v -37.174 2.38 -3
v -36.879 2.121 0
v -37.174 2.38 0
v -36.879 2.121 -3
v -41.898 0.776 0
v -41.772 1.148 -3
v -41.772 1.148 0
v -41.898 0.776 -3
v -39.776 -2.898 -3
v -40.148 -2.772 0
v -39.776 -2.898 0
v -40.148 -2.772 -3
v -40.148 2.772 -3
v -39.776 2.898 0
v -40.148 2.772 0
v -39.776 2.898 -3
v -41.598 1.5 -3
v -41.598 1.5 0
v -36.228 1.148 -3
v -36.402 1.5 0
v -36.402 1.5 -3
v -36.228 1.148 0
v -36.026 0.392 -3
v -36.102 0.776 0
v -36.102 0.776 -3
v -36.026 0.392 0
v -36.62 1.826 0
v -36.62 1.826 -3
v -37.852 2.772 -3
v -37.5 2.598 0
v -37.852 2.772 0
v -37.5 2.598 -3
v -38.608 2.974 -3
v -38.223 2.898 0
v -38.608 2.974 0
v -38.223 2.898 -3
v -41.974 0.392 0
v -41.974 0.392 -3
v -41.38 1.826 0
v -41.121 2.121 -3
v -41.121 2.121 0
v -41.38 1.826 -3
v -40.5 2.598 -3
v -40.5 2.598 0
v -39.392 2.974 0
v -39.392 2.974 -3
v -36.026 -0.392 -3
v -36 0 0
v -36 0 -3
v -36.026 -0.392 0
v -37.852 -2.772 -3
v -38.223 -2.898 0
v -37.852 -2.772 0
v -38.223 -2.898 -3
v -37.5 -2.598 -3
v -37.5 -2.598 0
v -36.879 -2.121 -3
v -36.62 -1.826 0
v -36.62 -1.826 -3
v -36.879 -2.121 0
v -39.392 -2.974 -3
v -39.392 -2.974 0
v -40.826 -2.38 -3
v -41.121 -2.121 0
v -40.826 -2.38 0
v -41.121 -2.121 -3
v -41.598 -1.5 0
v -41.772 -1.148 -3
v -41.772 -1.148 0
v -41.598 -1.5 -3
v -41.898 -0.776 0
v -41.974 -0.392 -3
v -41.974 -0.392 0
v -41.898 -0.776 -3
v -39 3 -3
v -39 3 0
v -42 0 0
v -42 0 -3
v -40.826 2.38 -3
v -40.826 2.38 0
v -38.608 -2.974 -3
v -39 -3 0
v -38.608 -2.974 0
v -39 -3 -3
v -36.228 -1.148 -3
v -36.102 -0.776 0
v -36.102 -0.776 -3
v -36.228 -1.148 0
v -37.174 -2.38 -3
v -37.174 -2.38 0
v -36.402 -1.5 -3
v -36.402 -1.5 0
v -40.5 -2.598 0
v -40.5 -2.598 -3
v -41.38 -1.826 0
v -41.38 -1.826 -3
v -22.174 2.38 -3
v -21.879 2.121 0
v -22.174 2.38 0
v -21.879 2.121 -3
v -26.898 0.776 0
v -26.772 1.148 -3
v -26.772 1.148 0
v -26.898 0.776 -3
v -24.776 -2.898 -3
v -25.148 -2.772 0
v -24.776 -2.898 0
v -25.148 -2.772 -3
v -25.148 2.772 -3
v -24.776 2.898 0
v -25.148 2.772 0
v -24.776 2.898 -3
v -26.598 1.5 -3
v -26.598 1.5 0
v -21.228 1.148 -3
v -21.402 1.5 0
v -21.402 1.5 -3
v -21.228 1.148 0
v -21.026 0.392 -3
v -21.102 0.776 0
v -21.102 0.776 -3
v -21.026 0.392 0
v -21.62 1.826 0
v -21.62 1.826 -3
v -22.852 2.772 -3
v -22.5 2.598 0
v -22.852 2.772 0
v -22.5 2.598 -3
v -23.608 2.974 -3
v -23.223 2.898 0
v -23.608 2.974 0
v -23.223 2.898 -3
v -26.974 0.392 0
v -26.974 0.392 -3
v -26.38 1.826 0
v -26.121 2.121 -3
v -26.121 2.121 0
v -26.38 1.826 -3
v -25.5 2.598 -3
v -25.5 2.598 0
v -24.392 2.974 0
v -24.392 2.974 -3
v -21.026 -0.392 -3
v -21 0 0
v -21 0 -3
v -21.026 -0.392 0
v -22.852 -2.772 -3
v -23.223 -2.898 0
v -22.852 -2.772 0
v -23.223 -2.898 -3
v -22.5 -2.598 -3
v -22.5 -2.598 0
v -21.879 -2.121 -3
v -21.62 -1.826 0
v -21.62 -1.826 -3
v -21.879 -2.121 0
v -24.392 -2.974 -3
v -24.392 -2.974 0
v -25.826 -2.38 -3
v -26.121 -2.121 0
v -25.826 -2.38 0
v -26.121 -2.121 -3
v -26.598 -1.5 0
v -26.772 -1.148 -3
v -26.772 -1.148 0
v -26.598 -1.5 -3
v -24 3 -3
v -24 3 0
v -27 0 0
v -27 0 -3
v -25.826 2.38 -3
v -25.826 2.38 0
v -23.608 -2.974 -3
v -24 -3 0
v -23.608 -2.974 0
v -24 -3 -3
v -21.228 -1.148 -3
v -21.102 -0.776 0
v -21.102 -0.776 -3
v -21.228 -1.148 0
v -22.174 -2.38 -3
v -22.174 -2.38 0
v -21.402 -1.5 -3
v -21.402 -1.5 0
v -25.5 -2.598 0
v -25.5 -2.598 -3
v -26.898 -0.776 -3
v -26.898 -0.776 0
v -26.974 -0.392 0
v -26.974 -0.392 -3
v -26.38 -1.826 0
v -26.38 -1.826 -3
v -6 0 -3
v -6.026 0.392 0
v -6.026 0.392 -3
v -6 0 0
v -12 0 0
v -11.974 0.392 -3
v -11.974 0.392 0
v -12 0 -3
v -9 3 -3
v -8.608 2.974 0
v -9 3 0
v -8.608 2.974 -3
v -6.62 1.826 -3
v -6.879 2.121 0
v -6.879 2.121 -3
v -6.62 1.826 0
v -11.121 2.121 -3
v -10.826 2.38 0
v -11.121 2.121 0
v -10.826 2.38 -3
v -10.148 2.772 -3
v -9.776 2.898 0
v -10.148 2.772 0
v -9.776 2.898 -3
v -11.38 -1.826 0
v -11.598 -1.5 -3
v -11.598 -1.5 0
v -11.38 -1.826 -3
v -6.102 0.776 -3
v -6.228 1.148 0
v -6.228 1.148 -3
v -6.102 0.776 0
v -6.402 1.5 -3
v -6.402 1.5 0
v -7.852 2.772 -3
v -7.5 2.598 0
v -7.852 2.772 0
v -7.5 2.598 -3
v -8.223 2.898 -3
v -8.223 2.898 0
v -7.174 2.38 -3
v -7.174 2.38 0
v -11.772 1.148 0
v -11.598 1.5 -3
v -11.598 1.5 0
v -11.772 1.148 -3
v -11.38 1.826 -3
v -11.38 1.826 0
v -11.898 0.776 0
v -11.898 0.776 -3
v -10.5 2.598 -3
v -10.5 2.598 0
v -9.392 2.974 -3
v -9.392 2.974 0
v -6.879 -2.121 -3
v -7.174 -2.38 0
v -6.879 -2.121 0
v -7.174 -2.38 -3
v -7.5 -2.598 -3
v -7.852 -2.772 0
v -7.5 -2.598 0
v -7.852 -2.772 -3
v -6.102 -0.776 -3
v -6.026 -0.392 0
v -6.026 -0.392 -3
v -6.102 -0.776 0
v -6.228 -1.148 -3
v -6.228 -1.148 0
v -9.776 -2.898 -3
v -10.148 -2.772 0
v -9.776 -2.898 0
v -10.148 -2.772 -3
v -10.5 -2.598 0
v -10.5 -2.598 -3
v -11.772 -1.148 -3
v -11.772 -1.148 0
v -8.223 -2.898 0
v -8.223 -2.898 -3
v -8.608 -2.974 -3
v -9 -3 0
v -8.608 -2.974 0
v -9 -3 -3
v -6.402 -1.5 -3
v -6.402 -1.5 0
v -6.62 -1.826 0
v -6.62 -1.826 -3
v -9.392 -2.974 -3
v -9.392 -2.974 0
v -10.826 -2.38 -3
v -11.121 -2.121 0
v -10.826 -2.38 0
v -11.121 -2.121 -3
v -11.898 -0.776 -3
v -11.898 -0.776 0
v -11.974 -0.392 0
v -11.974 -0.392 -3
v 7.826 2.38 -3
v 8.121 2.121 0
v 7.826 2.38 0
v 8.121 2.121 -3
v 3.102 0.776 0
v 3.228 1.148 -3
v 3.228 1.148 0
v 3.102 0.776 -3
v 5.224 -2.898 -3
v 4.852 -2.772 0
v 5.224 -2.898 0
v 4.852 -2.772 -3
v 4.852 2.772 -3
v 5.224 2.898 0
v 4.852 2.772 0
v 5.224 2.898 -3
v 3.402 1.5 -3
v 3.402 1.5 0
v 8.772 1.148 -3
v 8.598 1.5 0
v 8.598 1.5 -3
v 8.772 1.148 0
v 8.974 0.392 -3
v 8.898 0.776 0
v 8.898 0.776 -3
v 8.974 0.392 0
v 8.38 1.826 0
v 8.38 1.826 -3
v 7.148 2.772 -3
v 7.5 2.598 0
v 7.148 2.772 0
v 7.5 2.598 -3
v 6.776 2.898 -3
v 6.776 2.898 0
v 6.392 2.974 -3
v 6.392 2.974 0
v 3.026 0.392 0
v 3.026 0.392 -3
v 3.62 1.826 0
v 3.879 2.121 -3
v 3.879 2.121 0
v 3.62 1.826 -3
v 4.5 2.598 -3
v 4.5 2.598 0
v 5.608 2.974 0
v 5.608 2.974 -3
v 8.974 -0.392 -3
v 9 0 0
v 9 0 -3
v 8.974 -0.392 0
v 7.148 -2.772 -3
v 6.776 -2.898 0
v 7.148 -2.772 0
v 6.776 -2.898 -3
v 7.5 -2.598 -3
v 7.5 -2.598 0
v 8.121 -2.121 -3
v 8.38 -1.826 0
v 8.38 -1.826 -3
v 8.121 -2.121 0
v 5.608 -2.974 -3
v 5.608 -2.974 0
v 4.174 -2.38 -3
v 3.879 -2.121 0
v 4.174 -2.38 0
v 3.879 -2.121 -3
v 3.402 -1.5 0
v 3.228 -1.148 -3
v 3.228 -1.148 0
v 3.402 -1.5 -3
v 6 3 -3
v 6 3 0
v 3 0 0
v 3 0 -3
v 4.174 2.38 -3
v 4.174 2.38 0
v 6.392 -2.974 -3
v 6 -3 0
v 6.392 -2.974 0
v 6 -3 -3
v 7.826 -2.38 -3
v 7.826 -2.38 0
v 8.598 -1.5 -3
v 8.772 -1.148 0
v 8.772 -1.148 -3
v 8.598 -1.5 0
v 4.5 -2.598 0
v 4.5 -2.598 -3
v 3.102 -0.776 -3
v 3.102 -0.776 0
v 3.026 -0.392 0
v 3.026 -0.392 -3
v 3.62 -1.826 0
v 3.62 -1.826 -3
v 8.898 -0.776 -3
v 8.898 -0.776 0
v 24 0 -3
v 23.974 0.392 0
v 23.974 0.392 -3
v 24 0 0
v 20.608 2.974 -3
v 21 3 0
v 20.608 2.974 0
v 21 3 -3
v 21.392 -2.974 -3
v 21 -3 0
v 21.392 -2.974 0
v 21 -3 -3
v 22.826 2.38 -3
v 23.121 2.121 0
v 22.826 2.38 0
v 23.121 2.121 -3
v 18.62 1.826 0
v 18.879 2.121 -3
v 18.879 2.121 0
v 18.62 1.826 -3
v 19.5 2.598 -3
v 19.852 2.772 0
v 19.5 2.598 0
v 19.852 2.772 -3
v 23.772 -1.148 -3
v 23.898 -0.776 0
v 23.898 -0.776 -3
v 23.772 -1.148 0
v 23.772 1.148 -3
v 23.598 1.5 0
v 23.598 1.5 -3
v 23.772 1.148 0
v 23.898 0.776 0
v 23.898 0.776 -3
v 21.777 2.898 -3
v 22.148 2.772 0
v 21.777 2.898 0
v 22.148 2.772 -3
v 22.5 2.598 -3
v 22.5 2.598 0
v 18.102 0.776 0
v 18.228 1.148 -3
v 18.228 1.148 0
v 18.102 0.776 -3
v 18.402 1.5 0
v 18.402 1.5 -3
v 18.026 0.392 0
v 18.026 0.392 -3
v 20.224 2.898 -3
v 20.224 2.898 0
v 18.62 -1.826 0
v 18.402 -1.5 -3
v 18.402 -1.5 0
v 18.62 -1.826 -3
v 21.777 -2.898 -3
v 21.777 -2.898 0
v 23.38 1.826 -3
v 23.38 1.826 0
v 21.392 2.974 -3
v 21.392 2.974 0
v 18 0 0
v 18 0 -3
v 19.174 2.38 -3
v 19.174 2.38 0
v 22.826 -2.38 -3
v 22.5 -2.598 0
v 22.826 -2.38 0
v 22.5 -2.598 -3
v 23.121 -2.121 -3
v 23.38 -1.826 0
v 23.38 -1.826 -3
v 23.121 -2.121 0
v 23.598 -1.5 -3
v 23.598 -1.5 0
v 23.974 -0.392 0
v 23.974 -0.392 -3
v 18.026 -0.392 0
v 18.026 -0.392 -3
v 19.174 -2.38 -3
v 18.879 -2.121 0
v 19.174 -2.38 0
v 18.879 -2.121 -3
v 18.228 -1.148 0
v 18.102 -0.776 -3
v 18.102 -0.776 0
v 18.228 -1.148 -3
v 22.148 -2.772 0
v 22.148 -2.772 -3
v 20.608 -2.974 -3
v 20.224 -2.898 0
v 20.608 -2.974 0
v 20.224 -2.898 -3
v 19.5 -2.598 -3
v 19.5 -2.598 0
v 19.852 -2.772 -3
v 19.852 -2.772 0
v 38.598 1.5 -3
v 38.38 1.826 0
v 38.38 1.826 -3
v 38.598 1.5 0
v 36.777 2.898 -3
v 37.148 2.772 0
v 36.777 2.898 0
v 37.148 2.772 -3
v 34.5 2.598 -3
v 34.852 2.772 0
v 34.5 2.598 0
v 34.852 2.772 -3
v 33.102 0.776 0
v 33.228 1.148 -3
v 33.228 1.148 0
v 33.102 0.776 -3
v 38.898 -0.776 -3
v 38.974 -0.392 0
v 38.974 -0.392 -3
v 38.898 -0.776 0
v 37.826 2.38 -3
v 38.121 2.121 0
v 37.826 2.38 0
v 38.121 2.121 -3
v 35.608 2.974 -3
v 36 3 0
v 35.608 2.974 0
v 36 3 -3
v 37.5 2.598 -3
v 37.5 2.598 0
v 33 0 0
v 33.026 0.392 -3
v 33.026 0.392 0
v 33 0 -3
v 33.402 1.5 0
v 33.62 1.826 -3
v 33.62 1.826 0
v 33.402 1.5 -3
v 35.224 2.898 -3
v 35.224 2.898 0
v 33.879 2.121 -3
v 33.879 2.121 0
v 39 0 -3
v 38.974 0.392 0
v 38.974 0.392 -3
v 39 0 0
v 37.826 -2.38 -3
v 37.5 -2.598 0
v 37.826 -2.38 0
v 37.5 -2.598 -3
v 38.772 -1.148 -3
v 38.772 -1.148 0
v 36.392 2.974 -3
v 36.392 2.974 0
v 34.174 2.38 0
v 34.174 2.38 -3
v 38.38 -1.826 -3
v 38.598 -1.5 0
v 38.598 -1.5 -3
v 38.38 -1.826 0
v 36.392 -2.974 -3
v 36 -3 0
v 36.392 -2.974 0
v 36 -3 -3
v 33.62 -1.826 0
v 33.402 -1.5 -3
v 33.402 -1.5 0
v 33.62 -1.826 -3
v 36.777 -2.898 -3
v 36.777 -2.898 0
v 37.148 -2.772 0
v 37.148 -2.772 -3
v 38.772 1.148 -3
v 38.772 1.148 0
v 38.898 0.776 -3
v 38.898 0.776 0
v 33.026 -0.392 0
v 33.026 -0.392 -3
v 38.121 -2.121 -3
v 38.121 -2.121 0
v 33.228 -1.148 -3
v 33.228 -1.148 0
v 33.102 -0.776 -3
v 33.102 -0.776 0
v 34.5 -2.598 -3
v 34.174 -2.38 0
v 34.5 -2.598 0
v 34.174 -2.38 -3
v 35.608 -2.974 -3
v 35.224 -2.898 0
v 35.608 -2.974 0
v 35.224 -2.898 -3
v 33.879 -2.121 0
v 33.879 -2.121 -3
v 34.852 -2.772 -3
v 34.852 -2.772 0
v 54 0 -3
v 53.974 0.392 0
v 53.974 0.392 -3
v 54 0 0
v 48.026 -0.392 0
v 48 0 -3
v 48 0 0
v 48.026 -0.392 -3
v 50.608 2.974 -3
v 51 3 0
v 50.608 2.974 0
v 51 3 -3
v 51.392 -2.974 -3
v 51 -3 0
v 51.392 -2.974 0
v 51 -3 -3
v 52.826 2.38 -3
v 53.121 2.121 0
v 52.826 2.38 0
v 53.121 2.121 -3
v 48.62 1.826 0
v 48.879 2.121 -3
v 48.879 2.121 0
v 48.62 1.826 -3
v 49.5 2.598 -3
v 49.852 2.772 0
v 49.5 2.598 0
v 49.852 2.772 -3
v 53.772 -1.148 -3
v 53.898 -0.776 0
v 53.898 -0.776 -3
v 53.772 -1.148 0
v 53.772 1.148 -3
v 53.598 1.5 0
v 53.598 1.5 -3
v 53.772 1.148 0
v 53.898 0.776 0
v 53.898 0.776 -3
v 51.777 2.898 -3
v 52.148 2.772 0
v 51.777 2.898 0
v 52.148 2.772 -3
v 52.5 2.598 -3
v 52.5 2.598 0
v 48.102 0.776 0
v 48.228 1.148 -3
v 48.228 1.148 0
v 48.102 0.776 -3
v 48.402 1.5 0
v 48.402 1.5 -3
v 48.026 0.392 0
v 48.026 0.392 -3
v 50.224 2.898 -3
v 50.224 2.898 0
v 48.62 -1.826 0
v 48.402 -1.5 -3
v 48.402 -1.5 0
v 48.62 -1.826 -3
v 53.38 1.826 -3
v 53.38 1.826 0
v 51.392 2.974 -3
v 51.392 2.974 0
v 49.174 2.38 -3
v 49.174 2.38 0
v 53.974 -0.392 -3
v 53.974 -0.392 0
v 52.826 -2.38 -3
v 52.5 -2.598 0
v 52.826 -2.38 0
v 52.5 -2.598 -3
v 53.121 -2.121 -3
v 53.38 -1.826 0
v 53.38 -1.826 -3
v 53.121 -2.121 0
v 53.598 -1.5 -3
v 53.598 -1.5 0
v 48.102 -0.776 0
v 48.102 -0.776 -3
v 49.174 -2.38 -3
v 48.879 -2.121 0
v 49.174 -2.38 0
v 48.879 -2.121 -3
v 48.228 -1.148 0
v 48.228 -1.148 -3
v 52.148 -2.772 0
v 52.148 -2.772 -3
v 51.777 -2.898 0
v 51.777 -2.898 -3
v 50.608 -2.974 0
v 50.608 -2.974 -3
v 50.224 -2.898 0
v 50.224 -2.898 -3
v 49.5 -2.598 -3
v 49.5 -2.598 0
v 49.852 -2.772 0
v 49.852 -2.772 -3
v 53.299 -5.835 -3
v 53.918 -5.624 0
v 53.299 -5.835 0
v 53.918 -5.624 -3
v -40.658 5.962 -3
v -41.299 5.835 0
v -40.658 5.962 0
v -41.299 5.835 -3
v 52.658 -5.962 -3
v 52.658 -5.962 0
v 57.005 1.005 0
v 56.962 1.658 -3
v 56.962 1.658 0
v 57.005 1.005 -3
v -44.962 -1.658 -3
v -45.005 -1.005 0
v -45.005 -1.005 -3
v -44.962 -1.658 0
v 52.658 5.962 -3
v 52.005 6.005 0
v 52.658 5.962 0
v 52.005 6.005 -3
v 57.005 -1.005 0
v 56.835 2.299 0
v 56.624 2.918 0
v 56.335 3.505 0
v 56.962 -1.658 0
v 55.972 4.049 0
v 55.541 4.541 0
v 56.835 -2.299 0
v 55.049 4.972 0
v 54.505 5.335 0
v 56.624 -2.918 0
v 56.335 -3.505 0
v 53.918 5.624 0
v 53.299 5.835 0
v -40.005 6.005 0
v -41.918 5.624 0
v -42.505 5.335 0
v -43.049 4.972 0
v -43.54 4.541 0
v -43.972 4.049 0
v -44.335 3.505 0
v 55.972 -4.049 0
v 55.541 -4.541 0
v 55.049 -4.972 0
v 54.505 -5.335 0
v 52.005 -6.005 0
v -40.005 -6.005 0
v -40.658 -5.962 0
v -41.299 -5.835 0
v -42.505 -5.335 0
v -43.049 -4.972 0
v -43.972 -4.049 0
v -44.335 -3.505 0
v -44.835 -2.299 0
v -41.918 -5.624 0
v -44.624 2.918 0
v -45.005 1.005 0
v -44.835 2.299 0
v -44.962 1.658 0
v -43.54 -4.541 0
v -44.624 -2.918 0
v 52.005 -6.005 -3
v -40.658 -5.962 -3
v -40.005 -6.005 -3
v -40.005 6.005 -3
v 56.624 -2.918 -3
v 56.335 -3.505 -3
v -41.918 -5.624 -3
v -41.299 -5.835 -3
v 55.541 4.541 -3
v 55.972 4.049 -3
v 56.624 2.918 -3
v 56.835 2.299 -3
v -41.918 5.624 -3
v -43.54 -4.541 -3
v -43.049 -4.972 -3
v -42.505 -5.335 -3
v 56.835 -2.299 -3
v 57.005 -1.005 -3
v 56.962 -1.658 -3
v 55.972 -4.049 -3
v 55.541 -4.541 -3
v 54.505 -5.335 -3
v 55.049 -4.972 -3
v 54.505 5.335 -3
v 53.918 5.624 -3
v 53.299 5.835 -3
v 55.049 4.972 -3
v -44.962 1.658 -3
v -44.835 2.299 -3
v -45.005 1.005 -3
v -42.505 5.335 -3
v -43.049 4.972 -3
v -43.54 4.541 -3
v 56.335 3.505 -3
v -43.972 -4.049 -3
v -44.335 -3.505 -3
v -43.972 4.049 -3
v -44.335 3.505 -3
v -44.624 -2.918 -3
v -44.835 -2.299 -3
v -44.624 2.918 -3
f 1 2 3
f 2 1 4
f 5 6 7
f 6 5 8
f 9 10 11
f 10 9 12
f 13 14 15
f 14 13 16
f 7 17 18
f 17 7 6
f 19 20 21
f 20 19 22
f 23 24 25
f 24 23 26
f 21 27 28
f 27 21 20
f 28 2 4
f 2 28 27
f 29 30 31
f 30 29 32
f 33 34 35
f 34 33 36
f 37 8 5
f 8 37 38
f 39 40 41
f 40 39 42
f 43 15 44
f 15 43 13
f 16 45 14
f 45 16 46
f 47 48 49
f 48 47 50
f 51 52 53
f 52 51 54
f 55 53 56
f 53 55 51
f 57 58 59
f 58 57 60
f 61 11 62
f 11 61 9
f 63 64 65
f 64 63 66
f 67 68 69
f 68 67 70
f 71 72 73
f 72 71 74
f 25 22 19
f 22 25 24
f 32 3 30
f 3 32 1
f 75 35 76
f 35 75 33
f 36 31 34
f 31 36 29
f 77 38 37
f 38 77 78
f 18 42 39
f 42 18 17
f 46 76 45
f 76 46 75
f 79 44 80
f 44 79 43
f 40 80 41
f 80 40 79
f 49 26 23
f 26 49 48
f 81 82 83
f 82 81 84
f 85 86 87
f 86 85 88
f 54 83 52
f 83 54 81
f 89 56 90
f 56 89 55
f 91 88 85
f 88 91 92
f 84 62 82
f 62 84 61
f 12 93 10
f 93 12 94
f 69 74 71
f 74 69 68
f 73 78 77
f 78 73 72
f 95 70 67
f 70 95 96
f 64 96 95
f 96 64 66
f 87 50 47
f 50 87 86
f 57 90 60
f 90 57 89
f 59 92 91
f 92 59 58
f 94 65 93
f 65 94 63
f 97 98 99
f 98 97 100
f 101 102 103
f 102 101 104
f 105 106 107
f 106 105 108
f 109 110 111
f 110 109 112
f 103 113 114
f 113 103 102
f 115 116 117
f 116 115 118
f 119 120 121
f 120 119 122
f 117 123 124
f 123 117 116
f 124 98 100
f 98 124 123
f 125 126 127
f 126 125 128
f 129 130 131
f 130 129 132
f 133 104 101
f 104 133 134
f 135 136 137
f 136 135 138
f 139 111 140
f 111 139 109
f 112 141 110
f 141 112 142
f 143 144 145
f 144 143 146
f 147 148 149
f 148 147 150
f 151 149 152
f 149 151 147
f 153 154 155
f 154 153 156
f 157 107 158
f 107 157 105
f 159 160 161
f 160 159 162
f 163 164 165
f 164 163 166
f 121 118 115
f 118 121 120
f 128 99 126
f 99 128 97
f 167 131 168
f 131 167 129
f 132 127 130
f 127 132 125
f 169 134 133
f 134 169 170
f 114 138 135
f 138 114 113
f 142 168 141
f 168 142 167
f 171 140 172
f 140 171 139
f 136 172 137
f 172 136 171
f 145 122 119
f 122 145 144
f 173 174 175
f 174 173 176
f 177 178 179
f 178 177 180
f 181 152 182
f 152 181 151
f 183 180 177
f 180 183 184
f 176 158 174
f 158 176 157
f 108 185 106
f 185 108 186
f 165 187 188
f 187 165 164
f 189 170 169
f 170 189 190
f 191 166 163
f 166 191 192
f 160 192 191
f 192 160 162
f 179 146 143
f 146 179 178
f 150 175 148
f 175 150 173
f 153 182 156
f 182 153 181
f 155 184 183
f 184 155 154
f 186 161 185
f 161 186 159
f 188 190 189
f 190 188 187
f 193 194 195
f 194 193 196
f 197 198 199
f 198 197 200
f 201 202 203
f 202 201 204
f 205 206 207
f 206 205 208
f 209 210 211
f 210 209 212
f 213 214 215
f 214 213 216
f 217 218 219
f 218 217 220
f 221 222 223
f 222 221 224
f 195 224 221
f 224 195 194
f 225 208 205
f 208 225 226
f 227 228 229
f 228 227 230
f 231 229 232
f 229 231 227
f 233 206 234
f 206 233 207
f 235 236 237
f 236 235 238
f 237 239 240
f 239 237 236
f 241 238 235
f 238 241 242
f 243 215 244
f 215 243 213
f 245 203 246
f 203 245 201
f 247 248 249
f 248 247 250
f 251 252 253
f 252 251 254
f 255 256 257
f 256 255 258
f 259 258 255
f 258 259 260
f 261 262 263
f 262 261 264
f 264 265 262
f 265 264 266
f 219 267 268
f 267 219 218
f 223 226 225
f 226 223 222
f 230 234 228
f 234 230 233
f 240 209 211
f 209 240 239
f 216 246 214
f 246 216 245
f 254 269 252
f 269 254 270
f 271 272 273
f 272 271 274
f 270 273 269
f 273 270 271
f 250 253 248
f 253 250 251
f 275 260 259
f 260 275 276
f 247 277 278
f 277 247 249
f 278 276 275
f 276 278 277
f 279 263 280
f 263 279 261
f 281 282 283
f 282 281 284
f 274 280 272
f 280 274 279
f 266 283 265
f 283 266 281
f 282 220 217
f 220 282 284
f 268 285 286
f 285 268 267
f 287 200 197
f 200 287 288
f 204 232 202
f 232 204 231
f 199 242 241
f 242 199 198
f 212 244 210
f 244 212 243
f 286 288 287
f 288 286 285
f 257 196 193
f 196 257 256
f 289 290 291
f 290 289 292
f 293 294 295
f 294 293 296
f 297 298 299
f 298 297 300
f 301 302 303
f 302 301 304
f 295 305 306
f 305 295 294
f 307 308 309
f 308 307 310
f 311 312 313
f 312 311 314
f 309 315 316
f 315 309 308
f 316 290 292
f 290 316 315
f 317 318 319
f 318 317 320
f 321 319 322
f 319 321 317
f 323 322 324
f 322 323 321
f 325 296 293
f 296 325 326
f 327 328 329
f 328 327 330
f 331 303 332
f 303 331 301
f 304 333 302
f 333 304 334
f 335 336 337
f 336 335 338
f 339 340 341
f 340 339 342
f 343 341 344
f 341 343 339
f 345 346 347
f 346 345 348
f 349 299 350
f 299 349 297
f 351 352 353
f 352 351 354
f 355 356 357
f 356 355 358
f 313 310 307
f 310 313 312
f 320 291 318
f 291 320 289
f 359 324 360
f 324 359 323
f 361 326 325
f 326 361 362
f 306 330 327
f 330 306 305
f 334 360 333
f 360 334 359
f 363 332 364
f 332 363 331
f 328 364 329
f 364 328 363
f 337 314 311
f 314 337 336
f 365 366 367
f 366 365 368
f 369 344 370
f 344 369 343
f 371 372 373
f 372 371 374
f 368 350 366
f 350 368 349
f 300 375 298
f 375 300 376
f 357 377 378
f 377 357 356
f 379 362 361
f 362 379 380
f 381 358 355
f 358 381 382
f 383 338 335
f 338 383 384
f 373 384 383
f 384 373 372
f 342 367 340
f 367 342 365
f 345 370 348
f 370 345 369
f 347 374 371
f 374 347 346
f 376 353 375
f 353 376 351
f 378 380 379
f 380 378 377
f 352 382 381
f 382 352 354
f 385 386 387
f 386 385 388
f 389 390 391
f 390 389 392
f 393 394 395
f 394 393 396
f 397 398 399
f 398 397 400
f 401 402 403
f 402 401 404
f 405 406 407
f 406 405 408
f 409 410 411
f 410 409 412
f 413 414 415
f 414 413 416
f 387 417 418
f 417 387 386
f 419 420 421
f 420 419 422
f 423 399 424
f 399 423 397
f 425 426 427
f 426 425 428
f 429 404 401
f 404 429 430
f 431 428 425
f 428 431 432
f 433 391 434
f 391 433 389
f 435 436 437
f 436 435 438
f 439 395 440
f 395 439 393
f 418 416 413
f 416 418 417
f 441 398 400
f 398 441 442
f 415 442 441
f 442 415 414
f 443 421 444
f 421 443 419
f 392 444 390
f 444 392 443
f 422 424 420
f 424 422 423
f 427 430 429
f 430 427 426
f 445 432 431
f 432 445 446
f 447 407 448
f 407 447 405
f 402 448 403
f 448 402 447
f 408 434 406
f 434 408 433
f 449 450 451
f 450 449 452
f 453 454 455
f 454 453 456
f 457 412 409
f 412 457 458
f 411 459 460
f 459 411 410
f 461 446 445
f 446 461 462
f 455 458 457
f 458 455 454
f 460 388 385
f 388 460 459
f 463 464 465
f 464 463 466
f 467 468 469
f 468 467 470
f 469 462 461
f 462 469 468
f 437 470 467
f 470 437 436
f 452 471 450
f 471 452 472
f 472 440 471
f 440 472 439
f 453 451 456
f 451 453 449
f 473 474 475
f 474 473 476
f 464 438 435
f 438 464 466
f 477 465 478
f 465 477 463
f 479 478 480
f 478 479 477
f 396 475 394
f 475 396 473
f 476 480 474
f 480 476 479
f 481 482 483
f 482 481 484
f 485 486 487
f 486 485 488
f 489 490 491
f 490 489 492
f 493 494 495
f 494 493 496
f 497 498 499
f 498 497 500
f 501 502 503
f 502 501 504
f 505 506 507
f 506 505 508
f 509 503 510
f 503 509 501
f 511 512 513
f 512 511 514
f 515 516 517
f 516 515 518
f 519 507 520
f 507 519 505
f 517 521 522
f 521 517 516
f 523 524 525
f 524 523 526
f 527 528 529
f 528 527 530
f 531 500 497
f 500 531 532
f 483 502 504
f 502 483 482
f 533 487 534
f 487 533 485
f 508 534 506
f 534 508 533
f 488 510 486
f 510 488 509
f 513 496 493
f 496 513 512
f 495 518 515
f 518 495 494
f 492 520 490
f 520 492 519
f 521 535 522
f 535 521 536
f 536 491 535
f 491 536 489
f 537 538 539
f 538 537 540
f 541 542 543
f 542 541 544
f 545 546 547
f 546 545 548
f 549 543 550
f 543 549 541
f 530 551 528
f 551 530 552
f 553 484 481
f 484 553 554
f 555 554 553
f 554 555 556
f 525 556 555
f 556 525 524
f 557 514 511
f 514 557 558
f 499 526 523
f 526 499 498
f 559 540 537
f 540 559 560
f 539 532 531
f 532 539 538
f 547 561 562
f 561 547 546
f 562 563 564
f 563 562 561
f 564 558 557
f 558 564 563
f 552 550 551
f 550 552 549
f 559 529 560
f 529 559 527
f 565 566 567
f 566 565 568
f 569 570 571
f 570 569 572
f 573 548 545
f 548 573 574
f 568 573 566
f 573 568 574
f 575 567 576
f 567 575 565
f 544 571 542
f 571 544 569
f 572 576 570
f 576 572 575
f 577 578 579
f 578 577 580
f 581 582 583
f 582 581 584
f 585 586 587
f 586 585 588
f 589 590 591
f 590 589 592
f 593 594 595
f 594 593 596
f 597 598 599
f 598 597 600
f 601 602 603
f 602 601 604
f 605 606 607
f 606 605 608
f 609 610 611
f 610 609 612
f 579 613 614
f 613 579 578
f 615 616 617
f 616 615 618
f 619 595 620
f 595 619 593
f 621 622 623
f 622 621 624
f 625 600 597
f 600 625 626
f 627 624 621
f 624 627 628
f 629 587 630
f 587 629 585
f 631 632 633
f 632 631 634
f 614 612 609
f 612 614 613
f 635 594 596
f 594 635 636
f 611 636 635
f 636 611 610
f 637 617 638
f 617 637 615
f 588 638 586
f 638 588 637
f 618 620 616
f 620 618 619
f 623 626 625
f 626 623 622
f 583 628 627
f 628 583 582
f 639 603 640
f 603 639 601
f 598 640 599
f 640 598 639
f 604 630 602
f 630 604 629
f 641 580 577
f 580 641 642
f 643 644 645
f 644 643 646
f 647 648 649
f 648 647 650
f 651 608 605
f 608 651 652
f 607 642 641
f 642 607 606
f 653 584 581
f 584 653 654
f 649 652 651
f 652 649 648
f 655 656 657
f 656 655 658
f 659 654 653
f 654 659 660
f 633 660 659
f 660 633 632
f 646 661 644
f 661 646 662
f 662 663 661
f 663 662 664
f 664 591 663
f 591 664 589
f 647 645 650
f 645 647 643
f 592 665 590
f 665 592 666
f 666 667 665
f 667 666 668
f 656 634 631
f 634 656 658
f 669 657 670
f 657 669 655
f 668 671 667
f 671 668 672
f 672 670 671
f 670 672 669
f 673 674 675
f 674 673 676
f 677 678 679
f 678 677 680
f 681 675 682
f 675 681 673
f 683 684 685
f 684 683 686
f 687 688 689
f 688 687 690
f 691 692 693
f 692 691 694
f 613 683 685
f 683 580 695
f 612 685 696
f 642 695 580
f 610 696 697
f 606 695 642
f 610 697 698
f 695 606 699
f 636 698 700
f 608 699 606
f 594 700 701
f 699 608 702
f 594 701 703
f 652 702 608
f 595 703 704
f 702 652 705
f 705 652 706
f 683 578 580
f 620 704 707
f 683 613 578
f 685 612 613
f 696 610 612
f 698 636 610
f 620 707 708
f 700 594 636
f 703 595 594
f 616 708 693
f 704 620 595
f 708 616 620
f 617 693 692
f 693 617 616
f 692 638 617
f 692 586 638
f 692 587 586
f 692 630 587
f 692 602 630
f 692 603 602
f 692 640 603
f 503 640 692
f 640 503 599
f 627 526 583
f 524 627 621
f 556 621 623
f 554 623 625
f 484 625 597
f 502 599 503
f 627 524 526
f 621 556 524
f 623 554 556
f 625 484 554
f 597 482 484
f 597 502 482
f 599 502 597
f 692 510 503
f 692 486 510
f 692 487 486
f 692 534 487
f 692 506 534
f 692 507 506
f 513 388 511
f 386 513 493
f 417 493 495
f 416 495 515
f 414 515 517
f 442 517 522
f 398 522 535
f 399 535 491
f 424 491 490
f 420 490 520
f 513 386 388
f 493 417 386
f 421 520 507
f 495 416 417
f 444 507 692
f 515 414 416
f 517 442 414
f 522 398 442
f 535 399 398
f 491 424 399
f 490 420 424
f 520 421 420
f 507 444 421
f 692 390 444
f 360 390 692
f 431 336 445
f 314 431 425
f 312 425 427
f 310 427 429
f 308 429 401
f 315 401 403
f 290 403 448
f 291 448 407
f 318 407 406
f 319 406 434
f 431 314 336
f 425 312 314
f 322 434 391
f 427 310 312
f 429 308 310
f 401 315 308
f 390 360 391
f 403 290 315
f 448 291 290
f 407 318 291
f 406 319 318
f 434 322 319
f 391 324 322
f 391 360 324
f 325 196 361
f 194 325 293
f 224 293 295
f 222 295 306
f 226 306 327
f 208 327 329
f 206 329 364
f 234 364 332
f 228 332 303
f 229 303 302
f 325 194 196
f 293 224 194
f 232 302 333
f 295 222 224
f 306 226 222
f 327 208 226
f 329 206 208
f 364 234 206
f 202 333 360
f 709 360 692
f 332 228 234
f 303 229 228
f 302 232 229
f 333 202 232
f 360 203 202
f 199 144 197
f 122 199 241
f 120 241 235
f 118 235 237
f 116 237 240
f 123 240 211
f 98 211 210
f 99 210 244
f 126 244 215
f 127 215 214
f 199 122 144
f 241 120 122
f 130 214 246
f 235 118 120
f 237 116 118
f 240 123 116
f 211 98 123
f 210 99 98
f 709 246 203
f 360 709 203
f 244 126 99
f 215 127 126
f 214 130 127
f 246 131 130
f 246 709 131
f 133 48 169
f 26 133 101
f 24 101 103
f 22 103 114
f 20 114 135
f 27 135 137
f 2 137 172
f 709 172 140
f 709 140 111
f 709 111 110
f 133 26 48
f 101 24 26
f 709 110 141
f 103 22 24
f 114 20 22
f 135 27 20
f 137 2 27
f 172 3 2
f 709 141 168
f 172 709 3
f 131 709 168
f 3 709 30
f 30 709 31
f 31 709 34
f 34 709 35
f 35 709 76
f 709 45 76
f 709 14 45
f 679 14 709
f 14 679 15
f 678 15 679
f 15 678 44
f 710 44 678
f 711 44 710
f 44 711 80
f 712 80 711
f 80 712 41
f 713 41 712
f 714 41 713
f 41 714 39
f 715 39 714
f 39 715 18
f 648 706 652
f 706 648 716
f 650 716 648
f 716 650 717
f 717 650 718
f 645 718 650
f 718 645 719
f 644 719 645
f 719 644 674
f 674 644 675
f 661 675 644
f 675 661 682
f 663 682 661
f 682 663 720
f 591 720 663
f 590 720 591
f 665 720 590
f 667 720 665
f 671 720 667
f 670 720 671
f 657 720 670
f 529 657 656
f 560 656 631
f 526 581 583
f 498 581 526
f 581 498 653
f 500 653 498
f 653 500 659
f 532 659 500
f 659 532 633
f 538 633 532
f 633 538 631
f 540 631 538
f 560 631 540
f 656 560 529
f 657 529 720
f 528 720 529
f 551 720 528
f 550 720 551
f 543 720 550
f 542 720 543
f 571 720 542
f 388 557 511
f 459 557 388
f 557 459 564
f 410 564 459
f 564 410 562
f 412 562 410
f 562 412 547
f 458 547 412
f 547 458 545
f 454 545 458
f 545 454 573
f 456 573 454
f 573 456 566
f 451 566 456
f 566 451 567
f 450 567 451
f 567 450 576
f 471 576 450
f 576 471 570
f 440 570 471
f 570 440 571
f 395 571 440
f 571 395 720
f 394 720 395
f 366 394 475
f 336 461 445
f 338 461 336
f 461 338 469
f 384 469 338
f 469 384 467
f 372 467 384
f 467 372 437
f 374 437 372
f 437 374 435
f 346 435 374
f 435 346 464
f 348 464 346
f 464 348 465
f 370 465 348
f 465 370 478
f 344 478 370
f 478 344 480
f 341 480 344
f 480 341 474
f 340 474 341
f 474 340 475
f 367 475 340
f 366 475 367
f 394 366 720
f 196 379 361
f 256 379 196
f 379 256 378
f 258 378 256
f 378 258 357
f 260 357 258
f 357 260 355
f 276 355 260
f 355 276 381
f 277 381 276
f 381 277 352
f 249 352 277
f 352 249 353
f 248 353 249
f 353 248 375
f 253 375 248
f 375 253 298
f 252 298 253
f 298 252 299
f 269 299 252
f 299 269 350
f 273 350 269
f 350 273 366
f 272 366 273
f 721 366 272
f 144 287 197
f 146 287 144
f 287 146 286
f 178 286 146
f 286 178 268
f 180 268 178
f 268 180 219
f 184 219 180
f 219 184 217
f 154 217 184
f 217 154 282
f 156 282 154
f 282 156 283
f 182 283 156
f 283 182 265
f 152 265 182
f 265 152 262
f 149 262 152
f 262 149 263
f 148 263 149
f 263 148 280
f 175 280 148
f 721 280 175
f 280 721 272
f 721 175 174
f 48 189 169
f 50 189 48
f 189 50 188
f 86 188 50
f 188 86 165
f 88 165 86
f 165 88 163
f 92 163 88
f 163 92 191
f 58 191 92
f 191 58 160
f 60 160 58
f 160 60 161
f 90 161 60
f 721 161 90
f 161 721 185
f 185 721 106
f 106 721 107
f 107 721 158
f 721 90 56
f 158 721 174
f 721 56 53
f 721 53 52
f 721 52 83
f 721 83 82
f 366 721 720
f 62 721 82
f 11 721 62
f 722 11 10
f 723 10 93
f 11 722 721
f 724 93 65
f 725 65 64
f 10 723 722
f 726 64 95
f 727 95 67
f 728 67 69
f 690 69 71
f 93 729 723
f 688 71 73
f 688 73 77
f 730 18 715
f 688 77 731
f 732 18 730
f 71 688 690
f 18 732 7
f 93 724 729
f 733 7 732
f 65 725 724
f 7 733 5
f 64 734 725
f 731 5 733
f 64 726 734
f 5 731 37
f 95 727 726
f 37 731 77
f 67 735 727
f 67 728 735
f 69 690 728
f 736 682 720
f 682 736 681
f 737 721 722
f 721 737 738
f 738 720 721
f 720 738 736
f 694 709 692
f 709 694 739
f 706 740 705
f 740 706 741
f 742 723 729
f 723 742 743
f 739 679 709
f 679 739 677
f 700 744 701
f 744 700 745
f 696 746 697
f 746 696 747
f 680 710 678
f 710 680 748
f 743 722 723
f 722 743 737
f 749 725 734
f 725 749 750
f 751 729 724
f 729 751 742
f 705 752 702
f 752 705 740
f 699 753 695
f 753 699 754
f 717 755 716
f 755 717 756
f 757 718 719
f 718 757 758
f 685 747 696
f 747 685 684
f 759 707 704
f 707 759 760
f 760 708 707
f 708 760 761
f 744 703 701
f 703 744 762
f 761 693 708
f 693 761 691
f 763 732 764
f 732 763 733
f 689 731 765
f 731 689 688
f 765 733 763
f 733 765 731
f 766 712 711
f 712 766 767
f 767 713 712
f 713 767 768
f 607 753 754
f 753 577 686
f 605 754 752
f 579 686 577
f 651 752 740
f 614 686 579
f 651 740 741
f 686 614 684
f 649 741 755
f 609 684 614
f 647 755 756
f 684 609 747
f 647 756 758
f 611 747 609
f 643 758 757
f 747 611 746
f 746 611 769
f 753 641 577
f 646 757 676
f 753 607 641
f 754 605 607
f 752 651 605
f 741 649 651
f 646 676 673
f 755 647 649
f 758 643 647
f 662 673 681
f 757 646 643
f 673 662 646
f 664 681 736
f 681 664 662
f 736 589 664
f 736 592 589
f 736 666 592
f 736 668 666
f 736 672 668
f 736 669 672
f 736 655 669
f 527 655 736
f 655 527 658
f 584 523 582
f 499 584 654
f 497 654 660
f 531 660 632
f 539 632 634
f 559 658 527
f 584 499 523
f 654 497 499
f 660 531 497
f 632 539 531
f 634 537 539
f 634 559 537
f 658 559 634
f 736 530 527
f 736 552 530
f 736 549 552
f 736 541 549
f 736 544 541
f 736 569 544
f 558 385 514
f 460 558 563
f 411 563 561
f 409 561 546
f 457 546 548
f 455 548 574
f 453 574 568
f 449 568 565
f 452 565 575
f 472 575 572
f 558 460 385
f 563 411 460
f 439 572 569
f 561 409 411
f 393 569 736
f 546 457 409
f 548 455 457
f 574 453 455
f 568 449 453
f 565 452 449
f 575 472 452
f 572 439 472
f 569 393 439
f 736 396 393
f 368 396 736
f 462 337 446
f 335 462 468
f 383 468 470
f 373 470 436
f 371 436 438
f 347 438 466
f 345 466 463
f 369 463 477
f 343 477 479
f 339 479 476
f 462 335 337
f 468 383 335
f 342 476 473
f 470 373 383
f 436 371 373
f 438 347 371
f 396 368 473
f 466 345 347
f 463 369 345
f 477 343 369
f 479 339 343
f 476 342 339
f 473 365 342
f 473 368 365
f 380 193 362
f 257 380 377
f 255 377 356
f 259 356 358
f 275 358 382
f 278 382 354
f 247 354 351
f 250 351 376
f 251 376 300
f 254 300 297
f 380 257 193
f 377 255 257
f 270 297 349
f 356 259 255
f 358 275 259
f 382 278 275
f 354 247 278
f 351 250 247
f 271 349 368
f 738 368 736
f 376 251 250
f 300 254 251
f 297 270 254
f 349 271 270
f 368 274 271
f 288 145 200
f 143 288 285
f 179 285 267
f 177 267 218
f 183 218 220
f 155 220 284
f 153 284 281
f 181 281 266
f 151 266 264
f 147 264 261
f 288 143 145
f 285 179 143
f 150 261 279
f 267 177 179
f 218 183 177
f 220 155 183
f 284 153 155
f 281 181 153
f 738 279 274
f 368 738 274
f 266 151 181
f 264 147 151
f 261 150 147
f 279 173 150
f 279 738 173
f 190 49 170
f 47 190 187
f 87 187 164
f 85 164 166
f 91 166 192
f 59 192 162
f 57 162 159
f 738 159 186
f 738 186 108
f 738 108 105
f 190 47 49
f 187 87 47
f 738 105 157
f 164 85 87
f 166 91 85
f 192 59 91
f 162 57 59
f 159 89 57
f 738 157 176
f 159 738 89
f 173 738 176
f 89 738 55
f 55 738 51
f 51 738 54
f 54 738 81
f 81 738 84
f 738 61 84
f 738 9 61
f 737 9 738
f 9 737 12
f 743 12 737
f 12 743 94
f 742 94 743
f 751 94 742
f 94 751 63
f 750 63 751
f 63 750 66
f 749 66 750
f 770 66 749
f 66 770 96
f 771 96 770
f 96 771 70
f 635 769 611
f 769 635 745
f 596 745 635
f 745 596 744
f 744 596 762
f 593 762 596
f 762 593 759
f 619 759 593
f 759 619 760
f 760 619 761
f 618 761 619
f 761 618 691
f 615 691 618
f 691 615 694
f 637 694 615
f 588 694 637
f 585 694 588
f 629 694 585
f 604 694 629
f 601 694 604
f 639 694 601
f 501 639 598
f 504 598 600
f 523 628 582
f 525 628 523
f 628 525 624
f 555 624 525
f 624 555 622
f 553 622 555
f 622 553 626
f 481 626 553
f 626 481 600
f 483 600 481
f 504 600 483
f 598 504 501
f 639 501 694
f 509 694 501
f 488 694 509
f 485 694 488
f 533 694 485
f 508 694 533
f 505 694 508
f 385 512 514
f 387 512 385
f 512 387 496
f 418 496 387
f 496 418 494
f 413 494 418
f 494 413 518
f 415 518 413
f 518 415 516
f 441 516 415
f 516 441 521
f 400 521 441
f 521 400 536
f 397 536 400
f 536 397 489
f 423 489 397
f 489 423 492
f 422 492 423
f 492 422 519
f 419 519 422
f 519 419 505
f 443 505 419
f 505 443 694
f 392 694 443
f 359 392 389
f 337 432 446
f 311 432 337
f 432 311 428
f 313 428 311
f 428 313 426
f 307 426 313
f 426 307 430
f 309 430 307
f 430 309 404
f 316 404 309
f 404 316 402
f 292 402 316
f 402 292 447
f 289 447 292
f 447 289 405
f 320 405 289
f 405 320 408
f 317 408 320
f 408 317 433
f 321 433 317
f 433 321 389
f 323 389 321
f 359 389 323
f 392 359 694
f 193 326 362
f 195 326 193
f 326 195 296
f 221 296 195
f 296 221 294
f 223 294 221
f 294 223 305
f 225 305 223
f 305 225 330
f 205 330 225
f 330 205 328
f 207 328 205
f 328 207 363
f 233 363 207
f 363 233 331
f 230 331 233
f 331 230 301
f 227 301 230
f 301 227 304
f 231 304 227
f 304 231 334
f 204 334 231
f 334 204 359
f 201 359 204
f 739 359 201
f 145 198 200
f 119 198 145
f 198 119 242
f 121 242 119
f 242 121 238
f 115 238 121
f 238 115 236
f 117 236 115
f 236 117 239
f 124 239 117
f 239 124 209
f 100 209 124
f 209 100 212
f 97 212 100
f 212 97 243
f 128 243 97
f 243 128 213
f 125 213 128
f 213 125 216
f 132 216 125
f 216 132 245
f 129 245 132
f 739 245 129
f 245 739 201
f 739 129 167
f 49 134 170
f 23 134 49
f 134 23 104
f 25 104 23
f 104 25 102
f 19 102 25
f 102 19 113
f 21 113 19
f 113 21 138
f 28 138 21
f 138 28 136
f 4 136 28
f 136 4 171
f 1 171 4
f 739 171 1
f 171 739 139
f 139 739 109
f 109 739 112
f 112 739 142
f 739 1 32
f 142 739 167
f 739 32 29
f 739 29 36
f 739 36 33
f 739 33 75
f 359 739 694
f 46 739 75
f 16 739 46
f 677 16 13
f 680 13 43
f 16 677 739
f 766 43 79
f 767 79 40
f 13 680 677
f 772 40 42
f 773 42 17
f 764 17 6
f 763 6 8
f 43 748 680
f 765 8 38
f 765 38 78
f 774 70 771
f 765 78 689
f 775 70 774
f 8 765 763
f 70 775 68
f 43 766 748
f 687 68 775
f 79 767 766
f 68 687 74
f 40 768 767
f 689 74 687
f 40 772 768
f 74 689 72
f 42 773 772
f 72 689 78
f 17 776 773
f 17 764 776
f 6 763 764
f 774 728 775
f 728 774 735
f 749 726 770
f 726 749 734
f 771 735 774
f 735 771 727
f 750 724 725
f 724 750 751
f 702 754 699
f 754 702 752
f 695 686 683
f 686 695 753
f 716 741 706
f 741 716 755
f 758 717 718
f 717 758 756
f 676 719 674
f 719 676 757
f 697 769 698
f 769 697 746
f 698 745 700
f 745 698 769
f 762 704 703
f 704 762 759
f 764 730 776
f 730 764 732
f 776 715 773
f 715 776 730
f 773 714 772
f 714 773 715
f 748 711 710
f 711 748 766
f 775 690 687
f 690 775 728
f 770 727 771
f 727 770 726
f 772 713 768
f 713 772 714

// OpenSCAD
// Generated by SolidPython 1.1.3 on 2022-09-15 16:37:11
$fn = 48;


difference() {
	union() {
		translate(v = [6, 0, 0]) {
			difference() {
				union() {
					color(alpha = 1.0000000000, c = "Gold") {
						translate(v = [0, 0, 0]) {
							rotate(a = [0, 0, 0]) {
								translate(v = [0, 0, -3]) {
									linear_extrude(height = 3) {
										offset(r = 5) {
											square(center = true, size = [92.0100000000, 2.0100000000]);
										}
									}
								}
							}
						}
					}
				}
				union() {
					color(alpha = 1.0000000000, c = "Gold") {
						translate(v = [-45.0000000000, 0.0000000000, 0]) {
							rotate(a = [0, 0, 0]) {
								translate(v = [0, 0, -250]) {
									cylinder(h = 500, r = 3.0000000000);
								}
							}
						}
					}
					color(alpha = 1.0000000000, c = "Gold") {
						translate(v = [-30.0000000000, 0.0000000000, 0]) {
							rotate(a = [0, 0, 0]) {
								translate(v = [0, 0, -250]) {
									cylinder(h = 500, r = 3.0000000000);
								}
							}
						}
					}
					color(alpha = 1.0000000000, c = "Gold") {
						translate(v = [-15.0000000000, 0.0000000000, 0]) {
							rotate(a = [0, 0, 0]) {
								translate(v = [0, 0, -250]) {
									cylinder(h = 500, r = 3.0000000000);
								}
							}
						}
					}
					color(alpha = 1.0000000000, c = "Gold") {
						translate(v = [0.0000000000, 0.0000000000, 0]) {
							rotate(a = [0, 0, 0]) {
								translate(v = [0, 0, -250]) {
									cylinder(h = 500, r = 3.0000000000);
								}
							}
						}
					}
					color(alpha = 1.0000000000, c = "Gold") {
						translate(v = [15.0000000000, 0.0000000000, 0]) {
							rotate(a = [0, 0, 0]) {
								translate(v = [0, 0, -250]) {
									cylinder(h = 500, r = 3.0000000000);
								}
							}
						}
					}
					color(alpha = 1.0000000000, c = "Gold") {
						translate(v = [30.0000000000, 0.0000000000, 0]) {
							rotate(a = [0, 0, 0]) {
								translate(v = [0, 0, -250]) {
									cylinder(h = 500, r = 3.0000000000);
								}
							}
						}
					}
					color(alpha = 1.0000000000, c = "Gold") {
						translate(v = [45.0000000000, 0.0000000000, 0]) {
							rotate(a = [0, 0, 0]) {
								translate(v = [0, 0, -250]) {
									cylinder(h = 500, r = 3.0000000000);
								}
							}
						}
					}
				}
			}
		}
	}
	union();
}
/***********************************************
*********      SolidPython code:      **********
************************************************
 
import subprocess

from solid.objects import *
from solid import scad_render_to_file, scad_render

import math

import os

##################################################################################################################################################
##################################################################################################################################################
##################################################################################################################################################
##################################################################################################################################################
######  DIMENSION STUFF
##################################################################################################################################################
##################################################################################################################################################
##################################################################################################################################################
##################################################################################################################################################


mode = "3DPR"
#mode = "LAZE"
#mode = "TURE"
#mode = ""


######  Countersunk
countersunkM = []
WIDTH = 0
DEPTH = 1
countersunkM1width = 0; countersunkM1depth = 0; countersunkM2width = 0; countersunkM2depth = 0
countersunkM3width = 0
countersunkM3depth = 0
countersunkM4width = 0
countersunkM4depth = 0
countersunkM5width = 0
countersunkM5depth = 0
countersunkM6width = 0
countersunkM6depth = 0

######  Holes
holeM = []
holeM1 = 0
holeM2 = 0
holeM3 = 0
holeM4 = 0
holeM5 = 0
holeM6 = 0

######  Nuts
nutM = []
NUTWIDTH = 0
NUTDEPTH = 1
nutM1width = 0
nutM1depth = 0
nutM2width = 0
nutM2depth = 0
nutM3width = 0
nutM3depth = 0
nutM4width = 0
nutM4depth = 0
nutM5width = 0
nutM5depth = 0
nutM6width = 0
nutM6depth = 0

######  OOEB
ooebPinWidth = 0
ooebPinWidthWide = 0


######  Colors
colDefault = "Gold"

colOOEBbase = colDefault

colLEDRed = "red"
colWire = "gray"
    ######  Resistor
colRes = list()
colResistor = "beige"

colResBlack = "black"
colRes.append(colResBlack)
colResBrown = "brown"
colRes.append(colResBrown)
colResRed = "red"
colRes.append(colResRed)
colResOrange = "orange"
colRes.append(colResOrange)
colResYellow = "yellow"
colRes.append(colResYellow)
colResGreen = "green"
colRes.append(colResGreen)
colResBlue = "blue"
colRes.append(colResBlue)
colResPurple = "purple"
colRes.append(colResPurple)
colResGray = "gray"
colRes.append(colResGray)
colResWhite = "white"
colRes.append(colResWhite)





def changeMode(m="3DPR"):
    #print("####################################################      CHANGING MODES TO: " + m)
    global mode
    mode = m
    ######  Countersunk
    global countersunkM, countersunkM1width, countersunkM1depth, countersunkM2width, countersunkM2depth, countersunkM3width, countersunkM3depth, countersunkM4width, countersunkM4depth, countersunkM5width, countersunkM5depth, countersunkM6width, countersunkM6depth
    countersunkM = []
    countersunkM.append([0,0])
    countersunkM1width = 0 if mode== "3DPR" else 0
    countersunkM1depth = 0 if mode== "3DPR" else 0
    countersunkM.append([countersunkM1width,countersunkM1depth])
    countersunkM2width = 0 if mode== "3DPR" else 0
    countersunkM2depth = 0 if mode== "3DPR" else 0
    countersunkM.append([countersunkM2width,countersunkM2depth])
    countersunkM3width = 5.5/2+0.6 if mode== "3DPR" else 5.5/2
    countersunkM3depth = 1.7 if mode== "3DPR" else 1.7
    countersunkM.append([countersunkM3width,countersunkM3depth])
    countersunkM4width = 0 if mode== "3DPR" else 0
    countersunkM4depth = 0 if mode== "3DPR" else 0
    countersunkM.append([countersunkM4width,countersunkM4depth])
    countersunkM5width = 0 if mode== "3DPR" else 0
    countersunkM5depth = 0 if mode== "3DPR" else 0
    countersunkM.append([countersunkM5width,countersunkM5depth])
    countersunkM6width = 0 if mode== "3DPR" else 0
    countersunkM6depth = 0 if mode== "3DPR" else 0
    countersunkM.append([countersunkM6width,countersunkM6depth])
    ######  Holes
    global holeM, holeM1, holeM2, holeM3, holeM4, holeM5, holeM6, holeM7, holeM8
    holeM = []
    holeM1 = 1.2/2 if mode== "3DPR" else 1/2
    holeM2 = 2.3/2 if mode== "3DPR" else 2/2
    holeM3 = 3.4/2 if mode== "3DPR" else 3/2
    holeM4 = 4.4/2 if mode== "3DPR" else 4/2
    holeM5 = 5.4/2 if mode== "3DPR" else 5/2
    holeM6 = 6.5/2 if mode== "3DPR" else 6/2
    holeM7 = 7.5/2 if mode== "3DPR" else 7/2
    holeM8 = 8.6/2 if mode== "3DPR" else 8/2
    holeM.append(0)
    holeM.append(holeM1)
    holeM.append(holeM2)
    holeM.append(holeM3)
    holeM.append(holeM4)
    holeM.append(holeM5)
    holeM.append(holeM6)
    holeM.append(holeM7)
    holeM.append(holeM8)
    #####  Nuts
    global nutM, nutM1width, nutM1depth, nutM2width, nutM2depth, nutM3width, nutM3depth, nutM4width, nutM4depth, nutM5width, nutM5depth, nutM6width, nutM6depth
    nutM = []
    nutM.append([0,0]) 
    #M1 Nut
    nutM1width = 0
    nutM1depth = 0
    nutM.append([nutM1width,nutM1depth])    
    #M2 Nut
    nutM2width = 0
    nutM2depth = 0
    nutM.append([nutM2width,nutM2depth])    
    #M3 Nut
    #nutM3width = 6.05 if mode== "3DPR" else 5.5
    nutM3width = 6.05 * 1.154 if mode== "3DPR" else 5.5 * 1.154
    nutM3depth = 2.5 if mode== "3DPR" else 2.5
    nutM.append([nutM3width,nutM3depth])    
    #M4 Nut
    nutM4width = 0
    nutM4depth = 0
    nutM.append([nutM4width,nutM4depth])    
    #M5 Nut
    nutM5width = 0
    nutM5depth = 0
    nutM.append([nutM5width,nutM5depth])    
    #M6 Nut
    nutM6width = 11 if mode== "3DPR" else 10
    nutM6depth = 5 if mode== "3DPR" else 5
    nutM.append([nutM6width,nutM6depth])    

    ######  OOEB
    global ooebPinWidth,  ooebPinWidthWide

    ooebPinWidth = 0.6
    if(mode=="3DPR" or mode=="LAZE"):
        ooebPinWidth = 0.6 + 0.6
    ooebPinWidthWide = 1.2
    if(mode=="3DPR" or mode=="LAZE"):
        ooebPinWidthWide = 1.2 + 0.6


changeMode()


""""    
holeM12D = s=="3DPR" ? 1.4/2 : 1.2/2;
holeM16D = s=="3DPR" ? 1.8/2 : 1.6/2;
holeM2 = s=="3DPR" ? 2.3/2 : 2/2;
holeM25D = s=="3DPR" ? 2.8/2 : 2.5/2;
holeM27D = s=="3DPR" ? 3.1/2 : 2.7/2;    
holeM3 = s=="3DPR" ? 3.4/2 : 3/2;
holeM35D = s=="3DPR" ? 3.9/2 : 35/2;
holeM4 = s=="3DPR" ? 4.4/2 : 4/2;
holeM5 = s=="3DPR" ? 5.4/2 : 5/2;
holeM6 = s=="3DPR" ? 6.5/2 : 6/2;
holeM6Minus = s=="3DPR" ? 5.8/2 : 5.9/2;
holeM7 = s=="3DPR" ? 7.5/2 : 7/2;
holeM8 = s=="3DPR" ? 8.6/2 : 8/2;
holeM9 = s=="3DPR" ? 9.6/2 : 9/2;
holeM10 = s=="3DPR" ? 10.6/2 : 10/2;
holeM11 = s=="3DPR" ? 11.6/2 : 11/2;
holeM12 = s=="3DPR" ? 12.6/2 : 12/2;
holeM13 = s=="3DPR" ? 13.6/2 : 13/2;
holeM14 = s=="3DPR" ? 14.6/2 : 14/2;
holeM15 = s=="3DPR" ? 15.6/2 : 15/2;
holeM16 = s=="3DPR" ? 16.6/2 : 16/2;
holeM17 = s=="3DPR" ? 17.6/2 : 17/2;
holeM18 = s=="3DPR" ? 18.6/2 : 18/2;
holeM19 = s=="3DPR" ? 19.6/2 : 19/2;
holeM20 = s=="3DPR" ? 20.6/2 : 20/2;
"""

##################################################################################################################################################
##################################################################################################################################################
##################################################################################################################################################
##################################################################################################################################################
######  REGULAR STUFF
##################################################################################################################################################
##################################################################################################################################################
##################################################################################################################################################
##################################################################################################################################################


def setMode(mode="3DPR"):
    changeMode(mode)

def getMode():
    return mode



def saveToScad(fileName, parts):
    dir =  os.path.dirname(os.path.abspath(fileName))
    Path(dir).mkdir(parents=True, exist_ok=True)
    file_out = scad_render_to_file(parts, fileName, file_header=f'$fn = 48;')


def saveToDxf(fileIn, fileOut=""):
    if fileOut == "":
        fileOut = fileIn.replace(".scad",".dxf")
    saveToFile(fileIn, fileOut)
    
def saveToPng(fileIn, fileOut="",extra="--render"):
    if fileOut == "":
        fileOut = fileIn.replace(".scad",".png")
    saveToFile(fileIn, fileOut)

def saveToStl(fileIn, fileOut=""):
    if fileOut == "":
        fileOut = fileIn.replace(".scad",".stl")
    saveToFile(fileIn, fileOut)
    
def saveToSvg(fileIn, fileOut=""):
    if fileOut == "":
        fileOut = fileIn.replace(".scad",".svg")
    saveToFile(fileIn, fileOut)

def saveToFile(fileIn, fileOut,extra=""):
    extra = extra + " --colorscheme Tomorrow"

    launchStr = 'openscad -o "' + fileOut + '"' + extra + ' "' + fileIn + '"'
    if ".png" in fileOut:
        launchStr = launchStr + " --render"
    print("            saveToFile launch string: " + launchStr)
    subprocess.run(launchStr)
    x=0



def insert(item,pos=[None,None,None],x=0,y=0,z=0,ex=0,size=[None,None,None],length=0,rot=[None,None,None],rotX=0,rotY=0,rotZ=0,width=0,height=0,depth=100,rad=0,rad2=0,color=colDefault,alpha=1,OOwidth=0,OOheight=0,holes=True,negative=True, name="",m=""):
    return OPSCInsert(item,pos,x,y,z,ex,size,length,rot,rotX,rotY,rotZ,width,height,depth,rad,rad2,color,alpha,OOwidth,OOheight,holes,negative,name,m=m)


def OPSCInsert(item,pos=[None,None,None],x=0,y=0,z=0,ex=0,size=[None,None,None],length=0,rot=[None,None,None],rotX=0,rotY=0,rotZ=0,width=0,height=0,depth=100,rad=0,rad2=0,col=colDefault,alpha=1,OOwidth=0,OOheight=0,holes=True,negative=True, name="",m=""):
    
    """
        color(color,alpha){
            translate([x,y,z]){
                    rotate([rotX,rotY,rotZ]){
    """
    returnValue = ""

    #print(pos)

    if pos[0] != None:
        x=pos[0]
        y=pos[1]
        z=pos[2]
    if rot[0] != None:
        rotX=rot[0]
        rotY=rot[1]
        rotZ=rot[2]
    
    returnValue = color(col)(translate((x,y,z))(
                            rotate((rotX,rotY,rotZ))(
                                OPSCInsertIf(item,pos,x,y,z,ex,size,length,rot,rotX,rotY,rotZ,width,height,depth,rad,rad2,col,alpha,OOwidth,OOheight,holes,negative,name,m=m)
                            )
                        ))
                
    

    return returnValue

def OPSCInsertIf(item,pos=[None,None,None],x=0,y=0,z=0,ex=0,size=[None,None,None],length=0,rot=[None,None,None],rotX=0,rotY=0,rotZ=0,width=0,height=0,depth=100,rad=0,rad2=0,color=colDefault,alpha=1,OOwidth=0,OOheight=0,holes=True,negative=True, name="",m=""):
    returnValue = cube([10,10,10])

    if size[0] != None:
        width=size[0]
        height=size[1]
        depth=size[2]

    #print("    OPSCInsert item:" + str(item) + " at:[" + str(x) + "," + str(y) + "," + str(z) + "] size: [" + str(width) + "," + str(height) + "," + str(depth) + "]")

    if(item=="cube"):
        returnValue =  translate([0,0,-depth/2])(cube([width,height,depth],center=True).set_modifier(m))
    elif(item=="cylinder"):        
        returnValue = translate([0,0,-depth/2])(cylinder(r=rad,h=depth,center=True).set_modifier(m))
    elif(item=="sphere"):        
        returnValue = translate([0,0,-rad])(sphere(r=rad).set_modifier(m))
    elif(item=="plane"):
        if depth == 100:
            returnValue = insert("cube",size=[1000,1000,0.1],color=color).set_modifier(m)            
        else:
            returnValue = insert("cube",size=[1000,1000,depth],color=color).set_modifier(m)                        
    elif(item=="cubeRounded"):
        if(rad == 0):
                            rad = 5
        returnValue =  translate([0,0,-depth])(
                        linear_extrude(height=depth)(                        
                            offset(r=rad)(
                                square((width-rad*2+.01,height-rad*2+.01),center=True).set_modifier(m)
                                )
                            )
        )
    ######  Countersunk
    elif(item == "countersunkM1" or item == "csM1" ):
        returnValue = OSPCgetCountersunk(rad=1,m=m)
    elif(item == "countersunkM2" or item == "csM2" ):
        returnValue = OSPCgetCountersunk(rad=2,m=m)
    elif(item == "countersunkM3" or item == "csM3" ):
        returnValue = OSPCgetCountersunk(rad=3,m=m)
    elif(item == "countersunkM4" or item == "csM4" ):
        returnValue = OSPCgetCountersunk(rad=4,m=m)
    elif(item == "countersunkM5" or item == "csM5" ):
        returnValue = OSPCgetCountersunk(rad=5,m=m)
    elif(item == "countersunkM6" or item == "csM6" ):
        returnValue = OSPCgetCountersunk(rad=6,m=m)
    elif(item == "countersunk" or item == "cs"):
        returnValue = OSPCgetCountersunk(rad=rad,m=m)


    ######  Holes    
    elif(item == "holeM1"):
        returnValue = OSPCgetHole(rad=1,m=m)
    elif(item == "holeM2"):
        returnValue = OSPCgetHole(rad=2,m=m)
    elif(item == "holeM3"):
        returnValue = OSPCgetHole(rad=3,m=m)
    elif(item == "holeM4"):
        returnValue = OSPCgetHole(rad=4,m=m)
    elif(item == "holeM5"):
        returnValue = OSPCgetHole(rad=5,m=m)
    elif(item == "holeM6"):
        returnValue = OSPCgetHole(rad=6,m=m)
    elif(item == "holeM7"):
        returnValue = OSPCgetHole(rad=7,m=m)
    elif(item == "holeM8"):
        returnValue = OSPCgetHole(rad=8,m=m)
    elif(item == "hole"):
        returnValue = OSPCgetHole(rad=rad,m=m)

    ######  Nuts
    elif(item == "nutM1"):
        returnValue = OSPCgetNut(rad=1,depth=depth,m=m)
    elif(item == "nutM2"):
        returnValue = OSPCgetNut(rad=2,depth=depth,m=m)
    elif(item == "nutM3"):
        returnValue = OSPCgetNut(rad=3,depth=depth,m=m)
    elif(item == "nutM4"):
        returnValue = OSPCgetNut(rad=4,depth=depth,m=m)
    elif(item == "nutM5"):
        returnValue = OSPCgetNut(rad=5,depth=depth,m=m)
    elif(item == "nutM6"):
        returnValue = OSPCgetNut(rad=6,depth=depth,m=m)
    elif(item == "nut"):
        returnValue = OSPCgetNut(rad=rad,depth=depth,m=m)
    return returnValue

                

def OSPCgetHole(rad,m=""):
    return translate([0,0,-250])(cylinder(r=holeM[rad],h=500).set_modifier(m))

def OSPCgetNut(rad,depth,m=""):
    depth = nutM[rad][NUTDEPTH] if depth==100 else depth
    returnValue = OPSChexagon(nutM[rad][NUTWIDTH],depth=depth,m=m)
    return returnValue

def OSPCgetCountersunk(rad,m=""):
    depth=countersunkM[rad][DEPTH]
    returnValue = translate([0,0,-depth])(cylinder(h=depth,r2=countersunkM[rad][WIDTH],r1=holeM[rad])).set_modifier(m)
    return returnValue

def OPSChexagon(width,depth,m=""):
    angles = []
    for a in range(0,6):
        angles.append((a*360/6)+30)
    points = []
    for angle in angles:
        x = math.cos((math.pi/180)*angle)*(width/2)
        y = math.sin((math.pi/180)*angle)*(width/2)
        points.append([x,y])

        rv = polygon(points)
        rv = linear_extrude(height=depth)(rv)
        rv = translate([0,0,-depth])(rv)
        rv = rv.set_modifier(m)

    return rv

def OPSChexagonOld(width,depth,m=""):
    cutter = item()
    wid=width*2
    cutter.addPos(insert("cube",pos=[wid/2+width/2,0,0],size=[wid,wid,depth]))
    cutter.addPos(insert("cube",pos=[-wid/2-width/2,0,0],size=[wid,wid,depth]))

    cut = cutter.getPart()
    #print(depth)
    returnValue = difference()(
        translate([0,0,-depth/2])(cube([wid,wid,depth],center=True)),
        cut,
        rotate([0,0,60])(cut),
        rotate([0,0,-60])(cut)
    ).set_modifier(m)

    return returnValue

class item:

    def __init__(self):
        self.posItems=list()
        self.negItems=list()

    def isEmpty(self):        
        testString = scad_render(self.getPart())
        #print("test String length: " + str(len(testString)))
        returnValue = False
        if len(testString) == 270:            
            returnValue = True
        return returnValue

    def addPos(self,part):
        self.posItems.append(part)
    def addNeg(self,part):
        self.negItems.append(part)

    def getPart(self):
        returnValue = difference()(
            union()(self.posItems),
            union()(self.negItems)
        )
        return returnValue

    def getLaser(self,start=0,layers=1,thickness=-3,tileDif=200):
        rv= []

        for x in range(layers):
            rv.append(translate([0,x*tileDif,0])(
                    projection()(
                        intersection()(
                            insert("plane",z=start+x*thickness),
                            self.getPart()
                        )
                    )
            )
            )
        return union()(rv)

    def getSplit(self,start=0,depth=6,tileDif=200):
        rv= []

        rv.append(translate([0,0,0])(
            intersection()(
                insert("cube",size=[100,100,depth],z=start),
                self.getPart()
            )
        )
        )

        rv.append(translate([0,0,depth])(rotate([180,0,0])(translate([0,tileDif,depth])(
            intersection()(
                insert("cube",size=[100,100,depth],z=start-depth),
                self.getPart()
            )
        )
        )
        )
        )        
        return union()(rv)


 
 
************************************************/
